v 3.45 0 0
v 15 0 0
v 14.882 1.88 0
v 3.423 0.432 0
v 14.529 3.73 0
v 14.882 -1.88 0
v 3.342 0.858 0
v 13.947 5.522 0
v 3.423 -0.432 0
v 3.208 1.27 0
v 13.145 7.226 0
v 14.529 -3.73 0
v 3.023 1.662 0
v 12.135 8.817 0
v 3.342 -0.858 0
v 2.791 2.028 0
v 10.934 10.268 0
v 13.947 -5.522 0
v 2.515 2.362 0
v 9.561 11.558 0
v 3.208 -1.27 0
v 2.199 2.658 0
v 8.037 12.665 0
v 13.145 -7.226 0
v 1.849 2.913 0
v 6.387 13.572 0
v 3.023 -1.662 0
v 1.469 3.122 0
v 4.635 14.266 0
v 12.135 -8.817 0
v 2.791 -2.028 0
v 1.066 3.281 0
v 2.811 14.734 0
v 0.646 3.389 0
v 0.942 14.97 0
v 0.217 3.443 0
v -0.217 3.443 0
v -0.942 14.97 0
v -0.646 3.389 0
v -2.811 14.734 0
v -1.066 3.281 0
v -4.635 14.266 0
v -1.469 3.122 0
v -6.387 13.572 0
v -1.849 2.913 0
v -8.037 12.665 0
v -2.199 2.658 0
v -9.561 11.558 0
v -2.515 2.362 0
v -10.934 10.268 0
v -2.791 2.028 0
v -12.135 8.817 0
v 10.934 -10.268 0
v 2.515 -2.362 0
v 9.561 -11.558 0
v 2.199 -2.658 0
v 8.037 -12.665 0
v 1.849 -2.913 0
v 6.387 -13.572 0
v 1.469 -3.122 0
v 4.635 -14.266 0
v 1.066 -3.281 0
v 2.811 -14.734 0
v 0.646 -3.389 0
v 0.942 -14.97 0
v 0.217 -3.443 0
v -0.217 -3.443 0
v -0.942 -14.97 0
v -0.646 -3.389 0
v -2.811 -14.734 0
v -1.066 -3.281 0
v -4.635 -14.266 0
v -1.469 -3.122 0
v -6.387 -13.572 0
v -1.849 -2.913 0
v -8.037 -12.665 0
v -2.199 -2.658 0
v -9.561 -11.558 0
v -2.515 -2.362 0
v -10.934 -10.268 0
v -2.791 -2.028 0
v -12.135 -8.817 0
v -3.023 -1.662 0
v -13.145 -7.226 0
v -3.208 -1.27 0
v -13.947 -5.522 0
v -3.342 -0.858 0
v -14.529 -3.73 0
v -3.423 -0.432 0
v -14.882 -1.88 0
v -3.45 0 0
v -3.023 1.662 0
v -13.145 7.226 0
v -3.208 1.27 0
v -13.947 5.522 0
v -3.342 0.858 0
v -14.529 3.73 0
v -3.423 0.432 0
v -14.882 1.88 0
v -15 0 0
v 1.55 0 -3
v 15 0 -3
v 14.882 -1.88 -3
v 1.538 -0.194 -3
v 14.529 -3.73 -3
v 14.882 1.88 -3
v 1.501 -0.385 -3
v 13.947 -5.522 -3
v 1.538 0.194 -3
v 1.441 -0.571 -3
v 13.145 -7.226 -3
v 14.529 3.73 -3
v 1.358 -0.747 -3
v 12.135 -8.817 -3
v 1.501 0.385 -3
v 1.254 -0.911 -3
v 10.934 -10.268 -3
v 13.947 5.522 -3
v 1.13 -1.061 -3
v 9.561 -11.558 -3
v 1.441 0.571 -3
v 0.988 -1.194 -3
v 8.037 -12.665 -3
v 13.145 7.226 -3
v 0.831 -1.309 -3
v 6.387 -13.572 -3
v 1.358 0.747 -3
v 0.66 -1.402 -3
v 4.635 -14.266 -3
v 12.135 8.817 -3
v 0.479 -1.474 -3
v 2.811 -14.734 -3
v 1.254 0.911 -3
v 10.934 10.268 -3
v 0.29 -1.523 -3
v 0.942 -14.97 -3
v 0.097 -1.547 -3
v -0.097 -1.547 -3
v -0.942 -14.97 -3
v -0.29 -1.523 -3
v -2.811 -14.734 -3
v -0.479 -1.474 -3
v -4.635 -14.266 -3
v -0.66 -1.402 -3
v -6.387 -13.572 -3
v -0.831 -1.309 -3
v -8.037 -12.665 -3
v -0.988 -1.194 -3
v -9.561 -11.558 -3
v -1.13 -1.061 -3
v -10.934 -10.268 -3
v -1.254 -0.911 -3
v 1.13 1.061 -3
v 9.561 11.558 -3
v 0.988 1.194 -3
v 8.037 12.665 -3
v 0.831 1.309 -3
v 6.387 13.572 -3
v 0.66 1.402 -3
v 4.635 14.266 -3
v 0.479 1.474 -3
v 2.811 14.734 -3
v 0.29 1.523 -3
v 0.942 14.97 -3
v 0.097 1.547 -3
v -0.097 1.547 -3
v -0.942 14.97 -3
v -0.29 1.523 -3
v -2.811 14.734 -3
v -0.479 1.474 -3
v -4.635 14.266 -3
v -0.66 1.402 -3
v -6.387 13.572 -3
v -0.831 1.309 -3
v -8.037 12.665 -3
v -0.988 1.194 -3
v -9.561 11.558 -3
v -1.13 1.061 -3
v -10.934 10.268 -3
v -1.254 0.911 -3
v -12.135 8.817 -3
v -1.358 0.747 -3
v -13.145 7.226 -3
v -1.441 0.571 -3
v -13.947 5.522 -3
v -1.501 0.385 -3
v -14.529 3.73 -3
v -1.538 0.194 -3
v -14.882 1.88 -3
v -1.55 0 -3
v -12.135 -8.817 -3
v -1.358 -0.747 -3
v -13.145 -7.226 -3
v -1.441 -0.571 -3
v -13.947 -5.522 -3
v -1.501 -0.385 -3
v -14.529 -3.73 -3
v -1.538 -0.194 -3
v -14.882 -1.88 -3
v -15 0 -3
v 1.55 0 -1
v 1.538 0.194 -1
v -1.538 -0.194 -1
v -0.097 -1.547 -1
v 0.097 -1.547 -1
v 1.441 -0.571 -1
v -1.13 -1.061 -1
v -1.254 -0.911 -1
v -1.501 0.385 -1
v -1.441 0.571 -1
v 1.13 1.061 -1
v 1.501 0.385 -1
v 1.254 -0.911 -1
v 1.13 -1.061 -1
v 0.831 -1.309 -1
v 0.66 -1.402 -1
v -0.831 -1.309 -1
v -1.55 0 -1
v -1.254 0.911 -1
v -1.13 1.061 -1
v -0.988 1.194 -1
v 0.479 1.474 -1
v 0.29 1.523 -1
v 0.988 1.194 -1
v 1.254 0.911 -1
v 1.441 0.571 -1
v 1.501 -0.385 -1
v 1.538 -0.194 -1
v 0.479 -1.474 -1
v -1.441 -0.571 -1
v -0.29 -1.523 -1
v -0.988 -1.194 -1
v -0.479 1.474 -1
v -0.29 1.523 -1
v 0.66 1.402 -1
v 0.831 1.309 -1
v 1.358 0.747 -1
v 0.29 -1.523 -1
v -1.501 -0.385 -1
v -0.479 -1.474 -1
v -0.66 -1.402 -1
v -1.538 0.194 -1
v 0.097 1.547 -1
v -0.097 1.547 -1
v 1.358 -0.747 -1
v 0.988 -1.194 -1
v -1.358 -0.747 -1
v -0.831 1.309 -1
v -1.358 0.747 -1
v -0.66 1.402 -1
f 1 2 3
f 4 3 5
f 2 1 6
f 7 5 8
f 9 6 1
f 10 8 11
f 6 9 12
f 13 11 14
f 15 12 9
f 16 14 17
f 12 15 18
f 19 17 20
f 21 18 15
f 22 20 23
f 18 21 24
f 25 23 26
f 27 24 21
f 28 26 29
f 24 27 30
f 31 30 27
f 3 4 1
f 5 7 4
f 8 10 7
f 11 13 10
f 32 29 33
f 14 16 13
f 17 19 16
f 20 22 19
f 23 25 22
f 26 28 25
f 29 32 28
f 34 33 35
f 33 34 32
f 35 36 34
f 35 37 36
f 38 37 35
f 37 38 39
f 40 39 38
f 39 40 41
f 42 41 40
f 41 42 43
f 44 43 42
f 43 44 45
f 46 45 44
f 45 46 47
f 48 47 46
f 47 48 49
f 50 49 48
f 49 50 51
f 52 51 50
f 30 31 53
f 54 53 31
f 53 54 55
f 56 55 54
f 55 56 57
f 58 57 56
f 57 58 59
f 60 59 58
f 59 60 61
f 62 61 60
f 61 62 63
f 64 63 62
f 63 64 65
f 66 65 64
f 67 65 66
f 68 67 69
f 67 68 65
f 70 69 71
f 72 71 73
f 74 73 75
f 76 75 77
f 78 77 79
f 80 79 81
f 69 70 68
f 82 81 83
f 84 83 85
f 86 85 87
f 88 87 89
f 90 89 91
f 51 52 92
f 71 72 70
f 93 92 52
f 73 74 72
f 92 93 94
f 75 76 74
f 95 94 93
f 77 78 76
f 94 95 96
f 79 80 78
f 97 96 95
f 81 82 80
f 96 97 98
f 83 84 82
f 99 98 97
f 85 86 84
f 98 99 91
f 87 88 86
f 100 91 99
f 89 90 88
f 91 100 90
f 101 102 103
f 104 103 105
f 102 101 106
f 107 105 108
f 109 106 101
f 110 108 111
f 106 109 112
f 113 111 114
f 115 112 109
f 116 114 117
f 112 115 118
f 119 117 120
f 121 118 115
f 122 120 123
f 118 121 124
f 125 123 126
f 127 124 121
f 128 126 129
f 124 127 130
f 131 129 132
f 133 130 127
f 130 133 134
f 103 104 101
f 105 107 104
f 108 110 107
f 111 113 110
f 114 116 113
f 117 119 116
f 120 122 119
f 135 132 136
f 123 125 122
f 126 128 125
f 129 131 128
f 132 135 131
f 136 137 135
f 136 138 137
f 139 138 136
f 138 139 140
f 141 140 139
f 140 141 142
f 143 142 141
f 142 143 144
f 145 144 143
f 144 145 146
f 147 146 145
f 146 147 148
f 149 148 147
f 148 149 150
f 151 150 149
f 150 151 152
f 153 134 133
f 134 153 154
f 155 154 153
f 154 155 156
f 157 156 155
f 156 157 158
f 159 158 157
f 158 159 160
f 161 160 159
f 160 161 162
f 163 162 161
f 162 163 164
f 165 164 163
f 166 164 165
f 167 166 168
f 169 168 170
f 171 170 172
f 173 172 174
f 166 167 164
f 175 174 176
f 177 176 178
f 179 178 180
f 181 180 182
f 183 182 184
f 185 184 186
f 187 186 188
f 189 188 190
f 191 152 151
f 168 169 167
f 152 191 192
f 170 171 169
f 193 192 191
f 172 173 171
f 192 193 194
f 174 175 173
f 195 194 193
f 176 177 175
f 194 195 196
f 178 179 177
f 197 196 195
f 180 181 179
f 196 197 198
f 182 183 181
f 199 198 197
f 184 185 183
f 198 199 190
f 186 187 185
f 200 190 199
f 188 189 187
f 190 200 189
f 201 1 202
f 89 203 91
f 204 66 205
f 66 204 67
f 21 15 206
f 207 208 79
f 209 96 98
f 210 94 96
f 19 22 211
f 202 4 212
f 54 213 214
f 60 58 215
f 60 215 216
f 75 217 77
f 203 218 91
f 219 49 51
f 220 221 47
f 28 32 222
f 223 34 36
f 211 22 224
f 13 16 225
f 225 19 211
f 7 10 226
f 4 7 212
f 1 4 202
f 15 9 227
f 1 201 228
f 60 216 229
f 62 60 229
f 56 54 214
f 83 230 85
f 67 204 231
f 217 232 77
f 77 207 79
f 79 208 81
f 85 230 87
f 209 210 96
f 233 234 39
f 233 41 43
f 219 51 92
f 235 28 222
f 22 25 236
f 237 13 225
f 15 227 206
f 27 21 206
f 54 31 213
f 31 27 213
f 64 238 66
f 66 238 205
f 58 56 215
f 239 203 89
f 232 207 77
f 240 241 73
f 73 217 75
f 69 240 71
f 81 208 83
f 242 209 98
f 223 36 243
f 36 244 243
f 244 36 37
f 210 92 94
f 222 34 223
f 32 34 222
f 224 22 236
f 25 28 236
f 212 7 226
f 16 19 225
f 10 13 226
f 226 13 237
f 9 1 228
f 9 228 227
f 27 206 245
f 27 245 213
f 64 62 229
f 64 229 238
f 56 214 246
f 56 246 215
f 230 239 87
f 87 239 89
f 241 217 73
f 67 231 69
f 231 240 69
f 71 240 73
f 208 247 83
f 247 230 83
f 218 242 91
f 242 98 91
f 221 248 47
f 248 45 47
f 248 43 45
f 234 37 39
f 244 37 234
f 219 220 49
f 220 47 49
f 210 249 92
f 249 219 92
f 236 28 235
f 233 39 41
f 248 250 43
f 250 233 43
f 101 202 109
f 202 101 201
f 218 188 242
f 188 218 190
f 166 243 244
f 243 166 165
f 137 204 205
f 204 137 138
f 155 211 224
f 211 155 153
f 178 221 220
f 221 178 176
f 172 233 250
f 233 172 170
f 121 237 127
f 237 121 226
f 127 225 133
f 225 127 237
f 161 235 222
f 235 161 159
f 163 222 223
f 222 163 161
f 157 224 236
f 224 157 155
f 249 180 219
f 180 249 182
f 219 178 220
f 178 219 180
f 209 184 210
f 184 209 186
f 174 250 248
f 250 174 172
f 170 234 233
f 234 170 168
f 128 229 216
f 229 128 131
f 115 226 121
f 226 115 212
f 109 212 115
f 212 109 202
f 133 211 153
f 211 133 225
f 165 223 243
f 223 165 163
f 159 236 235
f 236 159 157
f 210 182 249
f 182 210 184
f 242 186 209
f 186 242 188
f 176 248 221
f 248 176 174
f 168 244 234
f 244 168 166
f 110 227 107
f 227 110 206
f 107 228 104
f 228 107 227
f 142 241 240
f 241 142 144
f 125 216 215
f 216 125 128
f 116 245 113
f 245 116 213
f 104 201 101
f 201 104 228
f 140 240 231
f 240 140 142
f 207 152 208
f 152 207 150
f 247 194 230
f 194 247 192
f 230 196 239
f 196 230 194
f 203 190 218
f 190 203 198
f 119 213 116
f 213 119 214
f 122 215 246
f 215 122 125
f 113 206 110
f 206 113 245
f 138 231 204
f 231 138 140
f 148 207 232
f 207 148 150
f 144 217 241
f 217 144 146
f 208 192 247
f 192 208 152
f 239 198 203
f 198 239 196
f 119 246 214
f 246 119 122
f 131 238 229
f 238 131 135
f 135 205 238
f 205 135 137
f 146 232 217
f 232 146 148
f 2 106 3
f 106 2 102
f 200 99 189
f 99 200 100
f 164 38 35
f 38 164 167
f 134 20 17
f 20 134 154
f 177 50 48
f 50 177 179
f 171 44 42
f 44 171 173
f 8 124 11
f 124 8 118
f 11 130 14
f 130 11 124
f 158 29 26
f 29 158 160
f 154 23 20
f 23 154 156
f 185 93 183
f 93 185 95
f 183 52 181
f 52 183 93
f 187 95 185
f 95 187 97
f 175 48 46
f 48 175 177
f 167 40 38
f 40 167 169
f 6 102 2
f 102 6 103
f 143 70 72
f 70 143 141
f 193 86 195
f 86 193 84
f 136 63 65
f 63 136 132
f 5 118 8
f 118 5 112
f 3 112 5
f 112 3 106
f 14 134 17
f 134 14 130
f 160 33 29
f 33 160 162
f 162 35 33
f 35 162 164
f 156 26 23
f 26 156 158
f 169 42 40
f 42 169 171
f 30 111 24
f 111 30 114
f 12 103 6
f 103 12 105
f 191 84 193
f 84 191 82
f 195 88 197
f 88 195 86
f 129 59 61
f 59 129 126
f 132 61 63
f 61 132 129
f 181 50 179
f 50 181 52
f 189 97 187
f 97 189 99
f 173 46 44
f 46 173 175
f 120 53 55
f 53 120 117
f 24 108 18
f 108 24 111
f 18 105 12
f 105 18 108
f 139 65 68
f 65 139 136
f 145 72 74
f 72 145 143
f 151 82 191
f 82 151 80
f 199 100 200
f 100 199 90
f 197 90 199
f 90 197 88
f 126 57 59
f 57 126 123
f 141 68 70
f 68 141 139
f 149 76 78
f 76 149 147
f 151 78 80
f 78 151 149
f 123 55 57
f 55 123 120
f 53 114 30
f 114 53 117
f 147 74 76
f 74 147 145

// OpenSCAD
$fn = 50;


difference() {
	union() {
		translate(v = [0, 0, -3.0000000000]) {
			cylinder(h = 3, r = 15.0000000000);
		}
	}
	union() {
		translate(v = [0, 0, 0]) {
			rotate(a = [0, 0, 0]) {
				difference() {
					union() {
						translate(v = [0, 0, -3.0000000000]) {
							cylinder(h = 3, r = 1.2500000000);
						}
						translate(v = [0, 0, -1.0000000000]) {
							cylinder(h = 1.0000000000, r1 = 1.5500000000, r2 = 3.4500000000);
						}
						translate(v = [0, 0, -3.0000000000]) {
							cylinder(h = 3, r = 1.5500000000);
						}
						translate(v = [0, 0, -3.0000000000]) {
							cylinder(h = 3, r = 1.2500000000);
						}
					}
					union();
				}
			}
		}
	}
}
